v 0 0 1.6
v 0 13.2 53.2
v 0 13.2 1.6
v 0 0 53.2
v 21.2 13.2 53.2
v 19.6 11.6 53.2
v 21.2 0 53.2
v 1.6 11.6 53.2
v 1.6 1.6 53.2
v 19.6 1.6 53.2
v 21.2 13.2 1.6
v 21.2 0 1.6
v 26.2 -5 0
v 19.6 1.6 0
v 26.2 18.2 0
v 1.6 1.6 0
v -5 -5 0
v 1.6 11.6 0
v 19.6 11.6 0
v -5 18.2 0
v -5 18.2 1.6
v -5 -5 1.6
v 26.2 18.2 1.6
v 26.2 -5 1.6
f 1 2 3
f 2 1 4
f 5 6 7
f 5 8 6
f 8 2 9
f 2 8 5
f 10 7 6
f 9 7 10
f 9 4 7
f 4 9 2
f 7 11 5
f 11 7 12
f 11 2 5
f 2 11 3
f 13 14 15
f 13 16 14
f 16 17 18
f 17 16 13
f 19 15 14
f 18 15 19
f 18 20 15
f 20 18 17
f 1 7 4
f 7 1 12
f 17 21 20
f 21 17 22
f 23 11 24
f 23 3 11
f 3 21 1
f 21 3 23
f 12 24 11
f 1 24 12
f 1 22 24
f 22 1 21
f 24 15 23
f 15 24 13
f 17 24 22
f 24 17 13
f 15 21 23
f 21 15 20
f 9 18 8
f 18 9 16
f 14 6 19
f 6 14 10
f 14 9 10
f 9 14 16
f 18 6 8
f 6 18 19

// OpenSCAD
materialThickness = 1.6;
cutX = 18;
cutY = 10;
cutZ = 50 + 2*materialThickness;
latchOverHang = 5;

// Cut through ikea LACK for ender3 XT60 power connector hole
module usbCableHole() {
    difference() {
        union() {
            // base cube
            cube([
                cutX + 2*materialThickness,
                cutY + 2*materialThickness,
                cutZ
            ]);
            // add latch at top side
            translate([
                -latchOverHang,
                -latchOverHang,
                0
            ]) cube([
                cutX + 2*materialThickness + 2*latchOverHang,
                cutY + 2*materialThickness + 2*latchOverHang,
                materialThickness
            ]);
        }
        // remove hole
        translate([
            materialThickness,
            materialThickness,
            0
        ]) cube([
            cutX,
            cutY,
            cutZ
        ]);
    };
}

usbCableHole();
